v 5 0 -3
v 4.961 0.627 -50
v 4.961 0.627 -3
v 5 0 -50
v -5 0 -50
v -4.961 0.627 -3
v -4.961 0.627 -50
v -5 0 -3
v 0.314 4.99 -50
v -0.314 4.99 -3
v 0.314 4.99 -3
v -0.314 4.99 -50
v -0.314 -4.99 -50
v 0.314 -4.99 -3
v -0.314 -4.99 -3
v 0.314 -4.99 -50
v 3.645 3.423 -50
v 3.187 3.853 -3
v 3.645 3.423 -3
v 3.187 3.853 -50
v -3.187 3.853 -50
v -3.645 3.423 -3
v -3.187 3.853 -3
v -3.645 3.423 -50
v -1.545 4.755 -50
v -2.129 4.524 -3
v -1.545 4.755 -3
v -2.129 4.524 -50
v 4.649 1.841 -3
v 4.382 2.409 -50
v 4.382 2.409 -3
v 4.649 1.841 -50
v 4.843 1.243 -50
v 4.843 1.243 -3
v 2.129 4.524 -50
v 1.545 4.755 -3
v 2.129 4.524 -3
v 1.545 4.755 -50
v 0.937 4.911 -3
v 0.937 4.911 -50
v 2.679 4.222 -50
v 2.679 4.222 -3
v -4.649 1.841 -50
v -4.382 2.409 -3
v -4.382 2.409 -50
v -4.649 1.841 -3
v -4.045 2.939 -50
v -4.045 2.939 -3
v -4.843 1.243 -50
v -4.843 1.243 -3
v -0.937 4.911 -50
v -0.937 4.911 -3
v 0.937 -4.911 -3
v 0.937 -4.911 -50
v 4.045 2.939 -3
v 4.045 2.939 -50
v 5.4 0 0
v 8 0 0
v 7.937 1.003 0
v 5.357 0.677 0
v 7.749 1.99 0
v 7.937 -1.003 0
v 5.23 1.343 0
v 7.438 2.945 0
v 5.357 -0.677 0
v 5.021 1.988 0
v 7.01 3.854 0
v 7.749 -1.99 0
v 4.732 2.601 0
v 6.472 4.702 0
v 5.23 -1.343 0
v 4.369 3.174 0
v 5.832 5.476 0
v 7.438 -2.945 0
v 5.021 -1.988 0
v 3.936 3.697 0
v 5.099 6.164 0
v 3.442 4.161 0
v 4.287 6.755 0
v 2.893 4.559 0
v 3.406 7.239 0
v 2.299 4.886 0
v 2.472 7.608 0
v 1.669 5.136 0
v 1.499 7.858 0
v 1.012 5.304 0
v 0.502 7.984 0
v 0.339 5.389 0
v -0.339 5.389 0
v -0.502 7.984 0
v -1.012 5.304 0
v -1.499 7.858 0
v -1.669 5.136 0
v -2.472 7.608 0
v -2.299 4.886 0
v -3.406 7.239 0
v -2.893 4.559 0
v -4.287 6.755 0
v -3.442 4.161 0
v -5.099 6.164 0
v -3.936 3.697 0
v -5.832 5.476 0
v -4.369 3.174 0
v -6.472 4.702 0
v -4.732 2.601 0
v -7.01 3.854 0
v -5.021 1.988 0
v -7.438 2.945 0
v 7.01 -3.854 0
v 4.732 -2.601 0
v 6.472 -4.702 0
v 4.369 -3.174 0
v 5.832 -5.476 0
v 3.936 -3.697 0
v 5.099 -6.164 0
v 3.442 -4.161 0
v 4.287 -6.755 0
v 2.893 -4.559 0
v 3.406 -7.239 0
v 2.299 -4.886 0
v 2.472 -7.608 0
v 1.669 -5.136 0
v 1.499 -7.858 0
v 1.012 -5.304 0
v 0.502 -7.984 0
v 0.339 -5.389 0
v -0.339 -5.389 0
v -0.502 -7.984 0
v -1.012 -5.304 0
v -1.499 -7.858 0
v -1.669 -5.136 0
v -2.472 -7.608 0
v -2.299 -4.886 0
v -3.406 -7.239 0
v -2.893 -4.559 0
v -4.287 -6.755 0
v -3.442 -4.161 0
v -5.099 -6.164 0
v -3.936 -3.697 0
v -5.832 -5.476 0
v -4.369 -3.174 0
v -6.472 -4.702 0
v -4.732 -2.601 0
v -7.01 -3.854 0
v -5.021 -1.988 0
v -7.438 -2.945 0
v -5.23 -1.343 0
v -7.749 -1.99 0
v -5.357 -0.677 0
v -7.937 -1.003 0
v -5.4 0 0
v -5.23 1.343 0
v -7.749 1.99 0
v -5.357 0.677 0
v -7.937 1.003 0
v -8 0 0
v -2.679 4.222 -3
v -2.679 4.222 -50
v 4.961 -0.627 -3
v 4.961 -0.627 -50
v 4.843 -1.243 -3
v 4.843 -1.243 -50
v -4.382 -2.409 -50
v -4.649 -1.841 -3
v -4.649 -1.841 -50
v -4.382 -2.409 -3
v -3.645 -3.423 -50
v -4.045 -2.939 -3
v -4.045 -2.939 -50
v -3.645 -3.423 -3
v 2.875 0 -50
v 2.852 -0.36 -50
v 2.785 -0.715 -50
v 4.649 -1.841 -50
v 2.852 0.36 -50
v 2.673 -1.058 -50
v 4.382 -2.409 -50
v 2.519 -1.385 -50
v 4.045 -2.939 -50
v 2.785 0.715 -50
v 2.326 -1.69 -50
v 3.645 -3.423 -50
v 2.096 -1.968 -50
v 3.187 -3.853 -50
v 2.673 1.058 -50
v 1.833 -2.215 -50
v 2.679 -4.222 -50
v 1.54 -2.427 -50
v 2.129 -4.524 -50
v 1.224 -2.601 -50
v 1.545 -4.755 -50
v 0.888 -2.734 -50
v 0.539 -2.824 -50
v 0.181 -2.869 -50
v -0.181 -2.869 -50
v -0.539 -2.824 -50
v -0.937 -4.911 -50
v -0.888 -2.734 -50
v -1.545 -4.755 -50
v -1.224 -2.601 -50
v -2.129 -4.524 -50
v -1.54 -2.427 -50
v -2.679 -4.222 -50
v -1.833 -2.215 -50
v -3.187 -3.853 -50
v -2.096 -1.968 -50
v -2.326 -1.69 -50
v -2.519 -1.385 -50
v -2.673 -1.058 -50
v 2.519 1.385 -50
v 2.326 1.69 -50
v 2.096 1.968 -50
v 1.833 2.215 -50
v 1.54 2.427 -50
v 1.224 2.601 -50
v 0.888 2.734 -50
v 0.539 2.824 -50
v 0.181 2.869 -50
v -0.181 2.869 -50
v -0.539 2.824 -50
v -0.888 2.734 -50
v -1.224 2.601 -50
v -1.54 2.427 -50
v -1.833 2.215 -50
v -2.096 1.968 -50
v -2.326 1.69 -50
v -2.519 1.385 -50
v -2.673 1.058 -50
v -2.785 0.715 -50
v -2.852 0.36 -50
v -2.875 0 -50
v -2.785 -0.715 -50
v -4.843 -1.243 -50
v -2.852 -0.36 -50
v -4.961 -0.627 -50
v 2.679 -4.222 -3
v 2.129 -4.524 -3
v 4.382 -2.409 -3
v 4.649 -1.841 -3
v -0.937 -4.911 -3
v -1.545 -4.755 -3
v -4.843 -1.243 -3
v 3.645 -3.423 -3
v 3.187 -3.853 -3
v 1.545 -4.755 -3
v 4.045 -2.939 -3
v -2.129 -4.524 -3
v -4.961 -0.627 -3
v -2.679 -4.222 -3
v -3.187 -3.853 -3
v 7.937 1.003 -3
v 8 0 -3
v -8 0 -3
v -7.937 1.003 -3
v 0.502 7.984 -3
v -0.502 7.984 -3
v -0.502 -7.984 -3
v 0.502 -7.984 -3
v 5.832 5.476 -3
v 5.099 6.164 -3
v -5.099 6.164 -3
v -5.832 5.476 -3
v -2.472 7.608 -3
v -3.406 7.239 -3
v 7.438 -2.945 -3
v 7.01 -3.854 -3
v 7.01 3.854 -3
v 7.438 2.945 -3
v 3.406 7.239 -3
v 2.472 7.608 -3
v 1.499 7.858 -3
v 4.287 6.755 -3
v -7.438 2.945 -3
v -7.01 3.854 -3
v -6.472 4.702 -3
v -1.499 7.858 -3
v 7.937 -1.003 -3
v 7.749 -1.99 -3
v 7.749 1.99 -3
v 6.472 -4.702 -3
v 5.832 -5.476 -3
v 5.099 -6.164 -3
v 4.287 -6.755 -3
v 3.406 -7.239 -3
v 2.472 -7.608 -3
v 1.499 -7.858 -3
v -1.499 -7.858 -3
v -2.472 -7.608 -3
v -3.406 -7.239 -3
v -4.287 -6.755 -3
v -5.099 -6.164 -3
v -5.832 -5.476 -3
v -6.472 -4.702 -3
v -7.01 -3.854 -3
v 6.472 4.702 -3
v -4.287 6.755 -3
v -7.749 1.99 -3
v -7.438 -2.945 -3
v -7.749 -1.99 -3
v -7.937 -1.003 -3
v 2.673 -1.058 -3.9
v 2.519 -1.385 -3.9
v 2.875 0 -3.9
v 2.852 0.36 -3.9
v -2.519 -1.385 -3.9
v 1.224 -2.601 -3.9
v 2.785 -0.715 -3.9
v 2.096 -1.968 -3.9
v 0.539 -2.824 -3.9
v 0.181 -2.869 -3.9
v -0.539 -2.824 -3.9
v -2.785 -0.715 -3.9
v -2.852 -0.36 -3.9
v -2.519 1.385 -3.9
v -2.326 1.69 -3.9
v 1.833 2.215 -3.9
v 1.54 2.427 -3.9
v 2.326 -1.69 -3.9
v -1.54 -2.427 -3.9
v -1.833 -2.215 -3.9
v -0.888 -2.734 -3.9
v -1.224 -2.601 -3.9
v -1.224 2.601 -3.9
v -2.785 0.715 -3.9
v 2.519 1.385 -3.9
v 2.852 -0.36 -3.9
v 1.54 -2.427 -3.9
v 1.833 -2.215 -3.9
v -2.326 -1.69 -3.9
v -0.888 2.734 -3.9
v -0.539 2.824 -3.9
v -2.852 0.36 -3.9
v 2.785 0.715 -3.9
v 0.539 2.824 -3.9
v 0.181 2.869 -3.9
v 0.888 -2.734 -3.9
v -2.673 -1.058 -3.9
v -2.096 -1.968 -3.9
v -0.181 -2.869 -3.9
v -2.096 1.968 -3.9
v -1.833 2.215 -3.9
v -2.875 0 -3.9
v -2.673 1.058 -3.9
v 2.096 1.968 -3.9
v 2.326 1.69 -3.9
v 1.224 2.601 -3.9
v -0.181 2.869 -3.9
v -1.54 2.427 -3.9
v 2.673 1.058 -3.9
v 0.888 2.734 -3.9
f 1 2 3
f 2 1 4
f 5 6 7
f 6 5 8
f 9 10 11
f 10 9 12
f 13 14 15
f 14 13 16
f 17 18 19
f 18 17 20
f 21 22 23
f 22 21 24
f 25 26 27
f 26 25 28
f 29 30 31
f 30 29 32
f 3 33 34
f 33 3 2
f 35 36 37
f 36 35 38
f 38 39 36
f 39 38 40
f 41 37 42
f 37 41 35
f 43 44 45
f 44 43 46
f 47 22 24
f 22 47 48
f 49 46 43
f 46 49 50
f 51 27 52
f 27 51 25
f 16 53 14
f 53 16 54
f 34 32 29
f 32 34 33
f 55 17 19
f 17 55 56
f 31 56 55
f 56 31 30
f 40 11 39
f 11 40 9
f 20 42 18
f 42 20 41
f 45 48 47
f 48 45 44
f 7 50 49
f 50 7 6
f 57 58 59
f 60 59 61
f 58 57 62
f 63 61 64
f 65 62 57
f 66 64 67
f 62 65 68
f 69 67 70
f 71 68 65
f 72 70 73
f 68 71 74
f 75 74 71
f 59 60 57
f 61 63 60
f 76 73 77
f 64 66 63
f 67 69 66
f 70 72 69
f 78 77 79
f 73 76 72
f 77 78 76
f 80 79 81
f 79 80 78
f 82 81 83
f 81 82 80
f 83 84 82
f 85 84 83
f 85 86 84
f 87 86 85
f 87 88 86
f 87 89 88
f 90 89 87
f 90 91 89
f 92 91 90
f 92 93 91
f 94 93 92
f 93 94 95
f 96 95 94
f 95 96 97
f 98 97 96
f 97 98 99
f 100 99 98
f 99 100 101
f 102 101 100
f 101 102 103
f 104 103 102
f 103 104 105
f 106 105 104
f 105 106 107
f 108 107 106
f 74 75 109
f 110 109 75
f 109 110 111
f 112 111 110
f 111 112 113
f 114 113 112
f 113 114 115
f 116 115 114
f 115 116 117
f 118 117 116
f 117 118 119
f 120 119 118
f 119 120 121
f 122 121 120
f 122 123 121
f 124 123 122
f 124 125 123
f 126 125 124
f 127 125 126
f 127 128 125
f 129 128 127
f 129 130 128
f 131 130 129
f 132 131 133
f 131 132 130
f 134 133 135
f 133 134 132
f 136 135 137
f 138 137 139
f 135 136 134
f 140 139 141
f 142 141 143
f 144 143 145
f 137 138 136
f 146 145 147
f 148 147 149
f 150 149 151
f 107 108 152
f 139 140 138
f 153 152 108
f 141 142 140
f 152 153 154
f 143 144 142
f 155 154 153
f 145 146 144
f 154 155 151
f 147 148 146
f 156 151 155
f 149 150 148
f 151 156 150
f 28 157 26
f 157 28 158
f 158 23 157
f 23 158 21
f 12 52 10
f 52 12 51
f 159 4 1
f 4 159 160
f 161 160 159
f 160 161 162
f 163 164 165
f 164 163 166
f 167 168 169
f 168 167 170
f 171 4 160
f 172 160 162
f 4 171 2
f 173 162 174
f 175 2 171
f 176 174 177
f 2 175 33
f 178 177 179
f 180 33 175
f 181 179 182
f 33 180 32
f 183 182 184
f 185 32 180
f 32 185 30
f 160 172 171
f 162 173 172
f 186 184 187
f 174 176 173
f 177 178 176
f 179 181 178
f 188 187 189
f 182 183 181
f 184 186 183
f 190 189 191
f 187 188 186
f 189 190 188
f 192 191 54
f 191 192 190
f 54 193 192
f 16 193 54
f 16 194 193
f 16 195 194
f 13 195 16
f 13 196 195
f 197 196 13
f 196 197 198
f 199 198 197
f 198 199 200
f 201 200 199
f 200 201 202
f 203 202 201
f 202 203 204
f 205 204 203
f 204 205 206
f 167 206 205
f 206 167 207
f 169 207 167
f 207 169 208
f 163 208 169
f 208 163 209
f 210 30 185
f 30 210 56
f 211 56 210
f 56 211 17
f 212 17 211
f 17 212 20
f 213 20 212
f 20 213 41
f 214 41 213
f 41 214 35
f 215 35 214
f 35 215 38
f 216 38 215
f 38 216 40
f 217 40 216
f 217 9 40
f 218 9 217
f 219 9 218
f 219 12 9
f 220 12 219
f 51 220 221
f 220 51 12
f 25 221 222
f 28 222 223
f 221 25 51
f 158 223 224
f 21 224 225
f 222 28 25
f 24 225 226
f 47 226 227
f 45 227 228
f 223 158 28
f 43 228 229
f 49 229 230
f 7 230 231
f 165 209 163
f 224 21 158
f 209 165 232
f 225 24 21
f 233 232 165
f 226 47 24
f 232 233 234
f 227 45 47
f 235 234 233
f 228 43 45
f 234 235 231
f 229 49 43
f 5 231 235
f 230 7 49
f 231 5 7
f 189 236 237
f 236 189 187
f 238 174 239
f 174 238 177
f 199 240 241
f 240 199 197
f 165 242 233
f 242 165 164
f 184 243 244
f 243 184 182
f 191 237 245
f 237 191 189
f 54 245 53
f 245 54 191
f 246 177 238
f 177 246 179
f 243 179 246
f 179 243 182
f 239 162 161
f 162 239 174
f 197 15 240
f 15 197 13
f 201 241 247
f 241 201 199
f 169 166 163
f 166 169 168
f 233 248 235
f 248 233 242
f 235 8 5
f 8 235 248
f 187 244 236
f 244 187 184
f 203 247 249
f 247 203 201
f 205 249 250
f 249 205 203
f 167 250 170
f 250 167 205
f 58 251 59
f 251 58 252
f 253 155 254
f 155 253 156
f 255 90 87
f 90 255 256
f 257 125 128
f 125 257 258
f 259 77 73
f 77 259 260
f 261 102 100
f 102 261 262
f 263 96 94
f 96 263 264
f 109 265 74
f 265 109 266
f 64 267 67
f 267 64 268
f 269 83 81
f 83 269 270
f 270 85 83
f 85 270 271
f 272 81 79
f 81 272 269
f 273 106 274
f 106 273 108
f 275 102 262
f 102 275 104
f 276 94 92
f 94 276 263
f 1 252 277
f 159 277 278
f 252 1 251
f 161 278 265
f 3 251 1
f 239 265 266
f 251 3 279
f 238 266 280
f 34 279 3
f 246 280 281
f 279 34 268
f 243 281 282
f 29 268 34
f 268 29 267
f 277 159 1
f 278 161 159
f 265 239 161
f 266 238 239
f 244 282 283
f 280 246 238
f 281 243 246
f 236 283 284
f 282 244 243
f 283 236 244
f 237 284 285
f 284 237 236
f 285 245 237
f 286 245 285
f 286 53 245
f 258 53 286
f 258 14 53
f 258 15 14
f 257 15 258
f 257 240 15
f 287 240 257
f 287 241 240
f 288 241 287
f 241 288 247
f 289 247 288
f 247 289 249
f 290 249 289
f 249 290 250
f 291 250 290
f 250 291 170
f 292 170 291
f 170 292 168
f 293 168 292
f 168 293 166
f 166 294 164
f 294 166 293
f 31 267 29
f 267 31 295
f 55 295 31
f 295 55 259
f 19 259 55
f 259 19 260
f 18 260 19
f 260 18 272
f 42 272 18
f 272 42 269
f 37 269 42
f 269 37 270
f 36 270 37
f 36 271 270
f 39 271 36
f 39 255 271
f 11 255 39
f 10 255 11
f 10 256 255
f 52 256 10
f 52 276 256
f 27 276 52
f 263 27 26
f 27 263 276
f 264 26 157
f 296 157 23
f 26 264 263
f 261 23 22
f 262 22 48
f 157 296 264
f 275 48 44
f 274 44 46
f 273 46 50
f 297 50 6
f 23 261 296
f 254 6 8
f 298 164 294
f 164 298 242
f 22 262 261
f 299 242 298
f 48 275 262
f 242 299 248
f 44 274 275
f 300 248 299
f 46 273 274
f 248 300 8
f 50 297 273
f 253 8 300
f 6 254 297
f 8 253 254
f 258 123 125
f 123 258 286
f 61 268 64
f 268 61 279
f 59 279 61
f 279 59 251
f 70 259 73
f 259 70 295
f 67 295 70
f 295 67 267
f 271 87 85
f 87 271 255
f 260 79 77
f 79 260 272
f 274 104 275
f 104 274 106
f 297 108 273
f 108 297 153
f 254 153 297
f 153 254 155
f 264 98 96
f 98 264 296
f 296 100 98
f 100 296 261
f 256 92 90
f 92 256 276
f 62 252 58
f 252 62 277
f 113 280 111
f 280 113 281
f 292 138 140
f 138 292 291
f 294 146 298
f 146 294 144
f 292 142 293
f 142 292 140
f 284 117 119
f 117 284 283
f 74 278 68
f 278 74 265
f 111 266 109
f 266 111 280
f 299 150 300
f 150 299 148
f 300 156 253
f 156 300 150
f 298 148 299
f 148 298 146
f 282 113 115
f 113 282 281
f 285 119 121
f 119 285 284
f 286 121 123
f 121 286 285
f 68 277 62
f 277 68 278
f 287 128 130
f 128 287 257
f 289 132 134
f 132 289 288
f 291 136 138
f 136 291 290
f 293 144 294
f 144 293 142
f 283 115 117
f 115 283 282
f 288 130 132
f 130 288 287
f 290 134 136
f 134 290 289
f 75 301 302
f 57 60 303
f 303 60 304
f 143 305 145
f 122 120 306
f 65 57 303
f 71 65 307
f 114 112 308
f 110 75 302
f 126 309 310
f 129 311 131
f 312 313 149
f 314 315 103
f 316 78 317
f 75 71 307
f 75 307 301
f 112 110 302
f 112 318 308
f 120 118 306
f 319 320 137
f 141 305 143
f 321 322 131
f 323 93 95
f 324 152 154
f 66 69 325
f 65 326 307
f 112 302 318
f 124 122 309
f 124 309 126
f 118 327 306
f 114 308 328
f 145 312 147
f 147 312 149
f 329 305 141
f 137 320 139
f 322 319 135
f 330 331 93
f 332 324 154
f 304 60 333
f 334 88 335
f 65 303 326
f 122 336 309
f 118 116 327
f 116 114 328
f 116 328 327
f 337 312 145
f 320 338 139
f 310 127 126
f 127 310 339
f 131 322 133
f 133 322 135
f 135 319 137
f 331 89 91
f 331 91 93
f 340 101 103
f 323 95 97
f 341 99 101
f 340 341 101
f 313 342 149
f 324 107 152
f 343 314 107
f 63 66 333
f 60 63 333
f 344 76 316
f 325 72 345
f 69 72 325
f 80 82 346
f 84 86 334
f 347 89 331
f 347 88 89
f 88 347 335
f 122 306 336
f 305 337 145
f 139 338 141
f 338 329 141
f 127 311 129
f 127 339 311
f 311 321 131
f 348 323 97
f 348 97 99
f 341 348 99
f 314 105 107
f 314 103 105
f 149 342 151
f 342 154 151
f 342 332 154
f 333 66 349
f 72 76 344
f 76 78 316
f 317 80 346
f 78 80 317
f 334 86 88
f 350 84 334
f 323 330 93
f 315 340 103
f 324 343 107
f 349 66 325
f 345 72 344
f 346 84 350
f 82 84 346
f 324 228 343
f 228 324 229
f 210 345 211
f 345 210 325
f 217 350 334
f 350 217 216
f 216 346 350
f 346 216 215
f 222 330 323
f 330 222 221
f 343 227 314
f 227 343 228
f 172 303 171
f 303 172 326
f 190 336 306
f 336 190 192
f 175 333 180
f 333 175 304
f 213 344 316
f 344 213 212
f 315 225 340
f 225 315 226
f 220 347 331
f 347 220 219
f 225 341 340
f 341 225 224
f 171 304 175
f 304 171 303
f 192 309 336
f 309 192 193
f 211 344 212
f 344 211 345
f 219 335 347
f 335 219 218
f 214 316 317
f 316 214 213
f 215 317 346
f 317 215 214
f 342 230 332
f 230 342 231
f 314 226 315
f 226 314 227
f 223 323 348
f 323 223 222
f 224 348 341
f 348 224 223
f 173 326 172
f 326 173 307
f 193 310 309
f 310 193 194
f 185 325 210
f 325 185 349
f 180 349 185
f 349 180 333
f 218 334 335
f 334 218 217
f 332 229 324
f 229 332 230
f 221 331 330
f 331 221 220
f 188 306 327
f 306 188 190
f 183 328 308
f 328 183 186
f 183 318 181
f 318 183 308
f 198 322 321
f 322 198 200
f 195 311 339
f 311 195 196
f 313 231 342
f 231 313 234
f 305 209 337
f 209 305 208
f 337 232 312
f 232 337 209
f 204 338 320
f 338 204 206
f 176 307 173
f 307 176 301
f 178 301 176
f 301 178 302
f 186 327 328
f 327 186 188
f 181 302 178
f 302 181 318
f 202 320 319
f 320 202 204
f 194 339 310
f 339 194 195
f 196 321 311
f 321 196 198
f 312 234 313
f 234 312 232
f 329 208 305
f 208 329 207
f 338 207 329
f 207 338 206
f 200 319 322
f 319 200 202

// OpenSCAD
$fn = 50;


difference() {
	union() {
		translate(v = [0, 0, -50.0000000000]) {
			cylinder(h = 50, r = 5.0000000000);
		}
		translate(v = [0, 0, -3.0000000000]) {
			cylinder(h = 3, r = 8.0000000000);
		}
	}
	union() {
		translate(v = [0, 0, 0]) {
			rotate(a = [0, 0, 0]) {
				difference() {
					union() {
						#translate(v = [0, 0, -50.0000000000]) {
							cylinder(h = 50, r = 2.6000000000);
						}
						#translate(v = [0, 0, -3.9000000000]) {
							cylinder(h = 3.9000000000, r1 = 2.8750000000, r2 = 5.4000000000);
						}
						#translate(v = [0, 0, -50.0000000000]) {
							cylinder(h = 50, r = 2.8750000000);
						}
						#translate(v = [0, 0, -50.0000000000]) {
							cylinder(h = 50, r = 2.6000000000);
						}
					}
					union();
				}
			}
		}
	}
}
